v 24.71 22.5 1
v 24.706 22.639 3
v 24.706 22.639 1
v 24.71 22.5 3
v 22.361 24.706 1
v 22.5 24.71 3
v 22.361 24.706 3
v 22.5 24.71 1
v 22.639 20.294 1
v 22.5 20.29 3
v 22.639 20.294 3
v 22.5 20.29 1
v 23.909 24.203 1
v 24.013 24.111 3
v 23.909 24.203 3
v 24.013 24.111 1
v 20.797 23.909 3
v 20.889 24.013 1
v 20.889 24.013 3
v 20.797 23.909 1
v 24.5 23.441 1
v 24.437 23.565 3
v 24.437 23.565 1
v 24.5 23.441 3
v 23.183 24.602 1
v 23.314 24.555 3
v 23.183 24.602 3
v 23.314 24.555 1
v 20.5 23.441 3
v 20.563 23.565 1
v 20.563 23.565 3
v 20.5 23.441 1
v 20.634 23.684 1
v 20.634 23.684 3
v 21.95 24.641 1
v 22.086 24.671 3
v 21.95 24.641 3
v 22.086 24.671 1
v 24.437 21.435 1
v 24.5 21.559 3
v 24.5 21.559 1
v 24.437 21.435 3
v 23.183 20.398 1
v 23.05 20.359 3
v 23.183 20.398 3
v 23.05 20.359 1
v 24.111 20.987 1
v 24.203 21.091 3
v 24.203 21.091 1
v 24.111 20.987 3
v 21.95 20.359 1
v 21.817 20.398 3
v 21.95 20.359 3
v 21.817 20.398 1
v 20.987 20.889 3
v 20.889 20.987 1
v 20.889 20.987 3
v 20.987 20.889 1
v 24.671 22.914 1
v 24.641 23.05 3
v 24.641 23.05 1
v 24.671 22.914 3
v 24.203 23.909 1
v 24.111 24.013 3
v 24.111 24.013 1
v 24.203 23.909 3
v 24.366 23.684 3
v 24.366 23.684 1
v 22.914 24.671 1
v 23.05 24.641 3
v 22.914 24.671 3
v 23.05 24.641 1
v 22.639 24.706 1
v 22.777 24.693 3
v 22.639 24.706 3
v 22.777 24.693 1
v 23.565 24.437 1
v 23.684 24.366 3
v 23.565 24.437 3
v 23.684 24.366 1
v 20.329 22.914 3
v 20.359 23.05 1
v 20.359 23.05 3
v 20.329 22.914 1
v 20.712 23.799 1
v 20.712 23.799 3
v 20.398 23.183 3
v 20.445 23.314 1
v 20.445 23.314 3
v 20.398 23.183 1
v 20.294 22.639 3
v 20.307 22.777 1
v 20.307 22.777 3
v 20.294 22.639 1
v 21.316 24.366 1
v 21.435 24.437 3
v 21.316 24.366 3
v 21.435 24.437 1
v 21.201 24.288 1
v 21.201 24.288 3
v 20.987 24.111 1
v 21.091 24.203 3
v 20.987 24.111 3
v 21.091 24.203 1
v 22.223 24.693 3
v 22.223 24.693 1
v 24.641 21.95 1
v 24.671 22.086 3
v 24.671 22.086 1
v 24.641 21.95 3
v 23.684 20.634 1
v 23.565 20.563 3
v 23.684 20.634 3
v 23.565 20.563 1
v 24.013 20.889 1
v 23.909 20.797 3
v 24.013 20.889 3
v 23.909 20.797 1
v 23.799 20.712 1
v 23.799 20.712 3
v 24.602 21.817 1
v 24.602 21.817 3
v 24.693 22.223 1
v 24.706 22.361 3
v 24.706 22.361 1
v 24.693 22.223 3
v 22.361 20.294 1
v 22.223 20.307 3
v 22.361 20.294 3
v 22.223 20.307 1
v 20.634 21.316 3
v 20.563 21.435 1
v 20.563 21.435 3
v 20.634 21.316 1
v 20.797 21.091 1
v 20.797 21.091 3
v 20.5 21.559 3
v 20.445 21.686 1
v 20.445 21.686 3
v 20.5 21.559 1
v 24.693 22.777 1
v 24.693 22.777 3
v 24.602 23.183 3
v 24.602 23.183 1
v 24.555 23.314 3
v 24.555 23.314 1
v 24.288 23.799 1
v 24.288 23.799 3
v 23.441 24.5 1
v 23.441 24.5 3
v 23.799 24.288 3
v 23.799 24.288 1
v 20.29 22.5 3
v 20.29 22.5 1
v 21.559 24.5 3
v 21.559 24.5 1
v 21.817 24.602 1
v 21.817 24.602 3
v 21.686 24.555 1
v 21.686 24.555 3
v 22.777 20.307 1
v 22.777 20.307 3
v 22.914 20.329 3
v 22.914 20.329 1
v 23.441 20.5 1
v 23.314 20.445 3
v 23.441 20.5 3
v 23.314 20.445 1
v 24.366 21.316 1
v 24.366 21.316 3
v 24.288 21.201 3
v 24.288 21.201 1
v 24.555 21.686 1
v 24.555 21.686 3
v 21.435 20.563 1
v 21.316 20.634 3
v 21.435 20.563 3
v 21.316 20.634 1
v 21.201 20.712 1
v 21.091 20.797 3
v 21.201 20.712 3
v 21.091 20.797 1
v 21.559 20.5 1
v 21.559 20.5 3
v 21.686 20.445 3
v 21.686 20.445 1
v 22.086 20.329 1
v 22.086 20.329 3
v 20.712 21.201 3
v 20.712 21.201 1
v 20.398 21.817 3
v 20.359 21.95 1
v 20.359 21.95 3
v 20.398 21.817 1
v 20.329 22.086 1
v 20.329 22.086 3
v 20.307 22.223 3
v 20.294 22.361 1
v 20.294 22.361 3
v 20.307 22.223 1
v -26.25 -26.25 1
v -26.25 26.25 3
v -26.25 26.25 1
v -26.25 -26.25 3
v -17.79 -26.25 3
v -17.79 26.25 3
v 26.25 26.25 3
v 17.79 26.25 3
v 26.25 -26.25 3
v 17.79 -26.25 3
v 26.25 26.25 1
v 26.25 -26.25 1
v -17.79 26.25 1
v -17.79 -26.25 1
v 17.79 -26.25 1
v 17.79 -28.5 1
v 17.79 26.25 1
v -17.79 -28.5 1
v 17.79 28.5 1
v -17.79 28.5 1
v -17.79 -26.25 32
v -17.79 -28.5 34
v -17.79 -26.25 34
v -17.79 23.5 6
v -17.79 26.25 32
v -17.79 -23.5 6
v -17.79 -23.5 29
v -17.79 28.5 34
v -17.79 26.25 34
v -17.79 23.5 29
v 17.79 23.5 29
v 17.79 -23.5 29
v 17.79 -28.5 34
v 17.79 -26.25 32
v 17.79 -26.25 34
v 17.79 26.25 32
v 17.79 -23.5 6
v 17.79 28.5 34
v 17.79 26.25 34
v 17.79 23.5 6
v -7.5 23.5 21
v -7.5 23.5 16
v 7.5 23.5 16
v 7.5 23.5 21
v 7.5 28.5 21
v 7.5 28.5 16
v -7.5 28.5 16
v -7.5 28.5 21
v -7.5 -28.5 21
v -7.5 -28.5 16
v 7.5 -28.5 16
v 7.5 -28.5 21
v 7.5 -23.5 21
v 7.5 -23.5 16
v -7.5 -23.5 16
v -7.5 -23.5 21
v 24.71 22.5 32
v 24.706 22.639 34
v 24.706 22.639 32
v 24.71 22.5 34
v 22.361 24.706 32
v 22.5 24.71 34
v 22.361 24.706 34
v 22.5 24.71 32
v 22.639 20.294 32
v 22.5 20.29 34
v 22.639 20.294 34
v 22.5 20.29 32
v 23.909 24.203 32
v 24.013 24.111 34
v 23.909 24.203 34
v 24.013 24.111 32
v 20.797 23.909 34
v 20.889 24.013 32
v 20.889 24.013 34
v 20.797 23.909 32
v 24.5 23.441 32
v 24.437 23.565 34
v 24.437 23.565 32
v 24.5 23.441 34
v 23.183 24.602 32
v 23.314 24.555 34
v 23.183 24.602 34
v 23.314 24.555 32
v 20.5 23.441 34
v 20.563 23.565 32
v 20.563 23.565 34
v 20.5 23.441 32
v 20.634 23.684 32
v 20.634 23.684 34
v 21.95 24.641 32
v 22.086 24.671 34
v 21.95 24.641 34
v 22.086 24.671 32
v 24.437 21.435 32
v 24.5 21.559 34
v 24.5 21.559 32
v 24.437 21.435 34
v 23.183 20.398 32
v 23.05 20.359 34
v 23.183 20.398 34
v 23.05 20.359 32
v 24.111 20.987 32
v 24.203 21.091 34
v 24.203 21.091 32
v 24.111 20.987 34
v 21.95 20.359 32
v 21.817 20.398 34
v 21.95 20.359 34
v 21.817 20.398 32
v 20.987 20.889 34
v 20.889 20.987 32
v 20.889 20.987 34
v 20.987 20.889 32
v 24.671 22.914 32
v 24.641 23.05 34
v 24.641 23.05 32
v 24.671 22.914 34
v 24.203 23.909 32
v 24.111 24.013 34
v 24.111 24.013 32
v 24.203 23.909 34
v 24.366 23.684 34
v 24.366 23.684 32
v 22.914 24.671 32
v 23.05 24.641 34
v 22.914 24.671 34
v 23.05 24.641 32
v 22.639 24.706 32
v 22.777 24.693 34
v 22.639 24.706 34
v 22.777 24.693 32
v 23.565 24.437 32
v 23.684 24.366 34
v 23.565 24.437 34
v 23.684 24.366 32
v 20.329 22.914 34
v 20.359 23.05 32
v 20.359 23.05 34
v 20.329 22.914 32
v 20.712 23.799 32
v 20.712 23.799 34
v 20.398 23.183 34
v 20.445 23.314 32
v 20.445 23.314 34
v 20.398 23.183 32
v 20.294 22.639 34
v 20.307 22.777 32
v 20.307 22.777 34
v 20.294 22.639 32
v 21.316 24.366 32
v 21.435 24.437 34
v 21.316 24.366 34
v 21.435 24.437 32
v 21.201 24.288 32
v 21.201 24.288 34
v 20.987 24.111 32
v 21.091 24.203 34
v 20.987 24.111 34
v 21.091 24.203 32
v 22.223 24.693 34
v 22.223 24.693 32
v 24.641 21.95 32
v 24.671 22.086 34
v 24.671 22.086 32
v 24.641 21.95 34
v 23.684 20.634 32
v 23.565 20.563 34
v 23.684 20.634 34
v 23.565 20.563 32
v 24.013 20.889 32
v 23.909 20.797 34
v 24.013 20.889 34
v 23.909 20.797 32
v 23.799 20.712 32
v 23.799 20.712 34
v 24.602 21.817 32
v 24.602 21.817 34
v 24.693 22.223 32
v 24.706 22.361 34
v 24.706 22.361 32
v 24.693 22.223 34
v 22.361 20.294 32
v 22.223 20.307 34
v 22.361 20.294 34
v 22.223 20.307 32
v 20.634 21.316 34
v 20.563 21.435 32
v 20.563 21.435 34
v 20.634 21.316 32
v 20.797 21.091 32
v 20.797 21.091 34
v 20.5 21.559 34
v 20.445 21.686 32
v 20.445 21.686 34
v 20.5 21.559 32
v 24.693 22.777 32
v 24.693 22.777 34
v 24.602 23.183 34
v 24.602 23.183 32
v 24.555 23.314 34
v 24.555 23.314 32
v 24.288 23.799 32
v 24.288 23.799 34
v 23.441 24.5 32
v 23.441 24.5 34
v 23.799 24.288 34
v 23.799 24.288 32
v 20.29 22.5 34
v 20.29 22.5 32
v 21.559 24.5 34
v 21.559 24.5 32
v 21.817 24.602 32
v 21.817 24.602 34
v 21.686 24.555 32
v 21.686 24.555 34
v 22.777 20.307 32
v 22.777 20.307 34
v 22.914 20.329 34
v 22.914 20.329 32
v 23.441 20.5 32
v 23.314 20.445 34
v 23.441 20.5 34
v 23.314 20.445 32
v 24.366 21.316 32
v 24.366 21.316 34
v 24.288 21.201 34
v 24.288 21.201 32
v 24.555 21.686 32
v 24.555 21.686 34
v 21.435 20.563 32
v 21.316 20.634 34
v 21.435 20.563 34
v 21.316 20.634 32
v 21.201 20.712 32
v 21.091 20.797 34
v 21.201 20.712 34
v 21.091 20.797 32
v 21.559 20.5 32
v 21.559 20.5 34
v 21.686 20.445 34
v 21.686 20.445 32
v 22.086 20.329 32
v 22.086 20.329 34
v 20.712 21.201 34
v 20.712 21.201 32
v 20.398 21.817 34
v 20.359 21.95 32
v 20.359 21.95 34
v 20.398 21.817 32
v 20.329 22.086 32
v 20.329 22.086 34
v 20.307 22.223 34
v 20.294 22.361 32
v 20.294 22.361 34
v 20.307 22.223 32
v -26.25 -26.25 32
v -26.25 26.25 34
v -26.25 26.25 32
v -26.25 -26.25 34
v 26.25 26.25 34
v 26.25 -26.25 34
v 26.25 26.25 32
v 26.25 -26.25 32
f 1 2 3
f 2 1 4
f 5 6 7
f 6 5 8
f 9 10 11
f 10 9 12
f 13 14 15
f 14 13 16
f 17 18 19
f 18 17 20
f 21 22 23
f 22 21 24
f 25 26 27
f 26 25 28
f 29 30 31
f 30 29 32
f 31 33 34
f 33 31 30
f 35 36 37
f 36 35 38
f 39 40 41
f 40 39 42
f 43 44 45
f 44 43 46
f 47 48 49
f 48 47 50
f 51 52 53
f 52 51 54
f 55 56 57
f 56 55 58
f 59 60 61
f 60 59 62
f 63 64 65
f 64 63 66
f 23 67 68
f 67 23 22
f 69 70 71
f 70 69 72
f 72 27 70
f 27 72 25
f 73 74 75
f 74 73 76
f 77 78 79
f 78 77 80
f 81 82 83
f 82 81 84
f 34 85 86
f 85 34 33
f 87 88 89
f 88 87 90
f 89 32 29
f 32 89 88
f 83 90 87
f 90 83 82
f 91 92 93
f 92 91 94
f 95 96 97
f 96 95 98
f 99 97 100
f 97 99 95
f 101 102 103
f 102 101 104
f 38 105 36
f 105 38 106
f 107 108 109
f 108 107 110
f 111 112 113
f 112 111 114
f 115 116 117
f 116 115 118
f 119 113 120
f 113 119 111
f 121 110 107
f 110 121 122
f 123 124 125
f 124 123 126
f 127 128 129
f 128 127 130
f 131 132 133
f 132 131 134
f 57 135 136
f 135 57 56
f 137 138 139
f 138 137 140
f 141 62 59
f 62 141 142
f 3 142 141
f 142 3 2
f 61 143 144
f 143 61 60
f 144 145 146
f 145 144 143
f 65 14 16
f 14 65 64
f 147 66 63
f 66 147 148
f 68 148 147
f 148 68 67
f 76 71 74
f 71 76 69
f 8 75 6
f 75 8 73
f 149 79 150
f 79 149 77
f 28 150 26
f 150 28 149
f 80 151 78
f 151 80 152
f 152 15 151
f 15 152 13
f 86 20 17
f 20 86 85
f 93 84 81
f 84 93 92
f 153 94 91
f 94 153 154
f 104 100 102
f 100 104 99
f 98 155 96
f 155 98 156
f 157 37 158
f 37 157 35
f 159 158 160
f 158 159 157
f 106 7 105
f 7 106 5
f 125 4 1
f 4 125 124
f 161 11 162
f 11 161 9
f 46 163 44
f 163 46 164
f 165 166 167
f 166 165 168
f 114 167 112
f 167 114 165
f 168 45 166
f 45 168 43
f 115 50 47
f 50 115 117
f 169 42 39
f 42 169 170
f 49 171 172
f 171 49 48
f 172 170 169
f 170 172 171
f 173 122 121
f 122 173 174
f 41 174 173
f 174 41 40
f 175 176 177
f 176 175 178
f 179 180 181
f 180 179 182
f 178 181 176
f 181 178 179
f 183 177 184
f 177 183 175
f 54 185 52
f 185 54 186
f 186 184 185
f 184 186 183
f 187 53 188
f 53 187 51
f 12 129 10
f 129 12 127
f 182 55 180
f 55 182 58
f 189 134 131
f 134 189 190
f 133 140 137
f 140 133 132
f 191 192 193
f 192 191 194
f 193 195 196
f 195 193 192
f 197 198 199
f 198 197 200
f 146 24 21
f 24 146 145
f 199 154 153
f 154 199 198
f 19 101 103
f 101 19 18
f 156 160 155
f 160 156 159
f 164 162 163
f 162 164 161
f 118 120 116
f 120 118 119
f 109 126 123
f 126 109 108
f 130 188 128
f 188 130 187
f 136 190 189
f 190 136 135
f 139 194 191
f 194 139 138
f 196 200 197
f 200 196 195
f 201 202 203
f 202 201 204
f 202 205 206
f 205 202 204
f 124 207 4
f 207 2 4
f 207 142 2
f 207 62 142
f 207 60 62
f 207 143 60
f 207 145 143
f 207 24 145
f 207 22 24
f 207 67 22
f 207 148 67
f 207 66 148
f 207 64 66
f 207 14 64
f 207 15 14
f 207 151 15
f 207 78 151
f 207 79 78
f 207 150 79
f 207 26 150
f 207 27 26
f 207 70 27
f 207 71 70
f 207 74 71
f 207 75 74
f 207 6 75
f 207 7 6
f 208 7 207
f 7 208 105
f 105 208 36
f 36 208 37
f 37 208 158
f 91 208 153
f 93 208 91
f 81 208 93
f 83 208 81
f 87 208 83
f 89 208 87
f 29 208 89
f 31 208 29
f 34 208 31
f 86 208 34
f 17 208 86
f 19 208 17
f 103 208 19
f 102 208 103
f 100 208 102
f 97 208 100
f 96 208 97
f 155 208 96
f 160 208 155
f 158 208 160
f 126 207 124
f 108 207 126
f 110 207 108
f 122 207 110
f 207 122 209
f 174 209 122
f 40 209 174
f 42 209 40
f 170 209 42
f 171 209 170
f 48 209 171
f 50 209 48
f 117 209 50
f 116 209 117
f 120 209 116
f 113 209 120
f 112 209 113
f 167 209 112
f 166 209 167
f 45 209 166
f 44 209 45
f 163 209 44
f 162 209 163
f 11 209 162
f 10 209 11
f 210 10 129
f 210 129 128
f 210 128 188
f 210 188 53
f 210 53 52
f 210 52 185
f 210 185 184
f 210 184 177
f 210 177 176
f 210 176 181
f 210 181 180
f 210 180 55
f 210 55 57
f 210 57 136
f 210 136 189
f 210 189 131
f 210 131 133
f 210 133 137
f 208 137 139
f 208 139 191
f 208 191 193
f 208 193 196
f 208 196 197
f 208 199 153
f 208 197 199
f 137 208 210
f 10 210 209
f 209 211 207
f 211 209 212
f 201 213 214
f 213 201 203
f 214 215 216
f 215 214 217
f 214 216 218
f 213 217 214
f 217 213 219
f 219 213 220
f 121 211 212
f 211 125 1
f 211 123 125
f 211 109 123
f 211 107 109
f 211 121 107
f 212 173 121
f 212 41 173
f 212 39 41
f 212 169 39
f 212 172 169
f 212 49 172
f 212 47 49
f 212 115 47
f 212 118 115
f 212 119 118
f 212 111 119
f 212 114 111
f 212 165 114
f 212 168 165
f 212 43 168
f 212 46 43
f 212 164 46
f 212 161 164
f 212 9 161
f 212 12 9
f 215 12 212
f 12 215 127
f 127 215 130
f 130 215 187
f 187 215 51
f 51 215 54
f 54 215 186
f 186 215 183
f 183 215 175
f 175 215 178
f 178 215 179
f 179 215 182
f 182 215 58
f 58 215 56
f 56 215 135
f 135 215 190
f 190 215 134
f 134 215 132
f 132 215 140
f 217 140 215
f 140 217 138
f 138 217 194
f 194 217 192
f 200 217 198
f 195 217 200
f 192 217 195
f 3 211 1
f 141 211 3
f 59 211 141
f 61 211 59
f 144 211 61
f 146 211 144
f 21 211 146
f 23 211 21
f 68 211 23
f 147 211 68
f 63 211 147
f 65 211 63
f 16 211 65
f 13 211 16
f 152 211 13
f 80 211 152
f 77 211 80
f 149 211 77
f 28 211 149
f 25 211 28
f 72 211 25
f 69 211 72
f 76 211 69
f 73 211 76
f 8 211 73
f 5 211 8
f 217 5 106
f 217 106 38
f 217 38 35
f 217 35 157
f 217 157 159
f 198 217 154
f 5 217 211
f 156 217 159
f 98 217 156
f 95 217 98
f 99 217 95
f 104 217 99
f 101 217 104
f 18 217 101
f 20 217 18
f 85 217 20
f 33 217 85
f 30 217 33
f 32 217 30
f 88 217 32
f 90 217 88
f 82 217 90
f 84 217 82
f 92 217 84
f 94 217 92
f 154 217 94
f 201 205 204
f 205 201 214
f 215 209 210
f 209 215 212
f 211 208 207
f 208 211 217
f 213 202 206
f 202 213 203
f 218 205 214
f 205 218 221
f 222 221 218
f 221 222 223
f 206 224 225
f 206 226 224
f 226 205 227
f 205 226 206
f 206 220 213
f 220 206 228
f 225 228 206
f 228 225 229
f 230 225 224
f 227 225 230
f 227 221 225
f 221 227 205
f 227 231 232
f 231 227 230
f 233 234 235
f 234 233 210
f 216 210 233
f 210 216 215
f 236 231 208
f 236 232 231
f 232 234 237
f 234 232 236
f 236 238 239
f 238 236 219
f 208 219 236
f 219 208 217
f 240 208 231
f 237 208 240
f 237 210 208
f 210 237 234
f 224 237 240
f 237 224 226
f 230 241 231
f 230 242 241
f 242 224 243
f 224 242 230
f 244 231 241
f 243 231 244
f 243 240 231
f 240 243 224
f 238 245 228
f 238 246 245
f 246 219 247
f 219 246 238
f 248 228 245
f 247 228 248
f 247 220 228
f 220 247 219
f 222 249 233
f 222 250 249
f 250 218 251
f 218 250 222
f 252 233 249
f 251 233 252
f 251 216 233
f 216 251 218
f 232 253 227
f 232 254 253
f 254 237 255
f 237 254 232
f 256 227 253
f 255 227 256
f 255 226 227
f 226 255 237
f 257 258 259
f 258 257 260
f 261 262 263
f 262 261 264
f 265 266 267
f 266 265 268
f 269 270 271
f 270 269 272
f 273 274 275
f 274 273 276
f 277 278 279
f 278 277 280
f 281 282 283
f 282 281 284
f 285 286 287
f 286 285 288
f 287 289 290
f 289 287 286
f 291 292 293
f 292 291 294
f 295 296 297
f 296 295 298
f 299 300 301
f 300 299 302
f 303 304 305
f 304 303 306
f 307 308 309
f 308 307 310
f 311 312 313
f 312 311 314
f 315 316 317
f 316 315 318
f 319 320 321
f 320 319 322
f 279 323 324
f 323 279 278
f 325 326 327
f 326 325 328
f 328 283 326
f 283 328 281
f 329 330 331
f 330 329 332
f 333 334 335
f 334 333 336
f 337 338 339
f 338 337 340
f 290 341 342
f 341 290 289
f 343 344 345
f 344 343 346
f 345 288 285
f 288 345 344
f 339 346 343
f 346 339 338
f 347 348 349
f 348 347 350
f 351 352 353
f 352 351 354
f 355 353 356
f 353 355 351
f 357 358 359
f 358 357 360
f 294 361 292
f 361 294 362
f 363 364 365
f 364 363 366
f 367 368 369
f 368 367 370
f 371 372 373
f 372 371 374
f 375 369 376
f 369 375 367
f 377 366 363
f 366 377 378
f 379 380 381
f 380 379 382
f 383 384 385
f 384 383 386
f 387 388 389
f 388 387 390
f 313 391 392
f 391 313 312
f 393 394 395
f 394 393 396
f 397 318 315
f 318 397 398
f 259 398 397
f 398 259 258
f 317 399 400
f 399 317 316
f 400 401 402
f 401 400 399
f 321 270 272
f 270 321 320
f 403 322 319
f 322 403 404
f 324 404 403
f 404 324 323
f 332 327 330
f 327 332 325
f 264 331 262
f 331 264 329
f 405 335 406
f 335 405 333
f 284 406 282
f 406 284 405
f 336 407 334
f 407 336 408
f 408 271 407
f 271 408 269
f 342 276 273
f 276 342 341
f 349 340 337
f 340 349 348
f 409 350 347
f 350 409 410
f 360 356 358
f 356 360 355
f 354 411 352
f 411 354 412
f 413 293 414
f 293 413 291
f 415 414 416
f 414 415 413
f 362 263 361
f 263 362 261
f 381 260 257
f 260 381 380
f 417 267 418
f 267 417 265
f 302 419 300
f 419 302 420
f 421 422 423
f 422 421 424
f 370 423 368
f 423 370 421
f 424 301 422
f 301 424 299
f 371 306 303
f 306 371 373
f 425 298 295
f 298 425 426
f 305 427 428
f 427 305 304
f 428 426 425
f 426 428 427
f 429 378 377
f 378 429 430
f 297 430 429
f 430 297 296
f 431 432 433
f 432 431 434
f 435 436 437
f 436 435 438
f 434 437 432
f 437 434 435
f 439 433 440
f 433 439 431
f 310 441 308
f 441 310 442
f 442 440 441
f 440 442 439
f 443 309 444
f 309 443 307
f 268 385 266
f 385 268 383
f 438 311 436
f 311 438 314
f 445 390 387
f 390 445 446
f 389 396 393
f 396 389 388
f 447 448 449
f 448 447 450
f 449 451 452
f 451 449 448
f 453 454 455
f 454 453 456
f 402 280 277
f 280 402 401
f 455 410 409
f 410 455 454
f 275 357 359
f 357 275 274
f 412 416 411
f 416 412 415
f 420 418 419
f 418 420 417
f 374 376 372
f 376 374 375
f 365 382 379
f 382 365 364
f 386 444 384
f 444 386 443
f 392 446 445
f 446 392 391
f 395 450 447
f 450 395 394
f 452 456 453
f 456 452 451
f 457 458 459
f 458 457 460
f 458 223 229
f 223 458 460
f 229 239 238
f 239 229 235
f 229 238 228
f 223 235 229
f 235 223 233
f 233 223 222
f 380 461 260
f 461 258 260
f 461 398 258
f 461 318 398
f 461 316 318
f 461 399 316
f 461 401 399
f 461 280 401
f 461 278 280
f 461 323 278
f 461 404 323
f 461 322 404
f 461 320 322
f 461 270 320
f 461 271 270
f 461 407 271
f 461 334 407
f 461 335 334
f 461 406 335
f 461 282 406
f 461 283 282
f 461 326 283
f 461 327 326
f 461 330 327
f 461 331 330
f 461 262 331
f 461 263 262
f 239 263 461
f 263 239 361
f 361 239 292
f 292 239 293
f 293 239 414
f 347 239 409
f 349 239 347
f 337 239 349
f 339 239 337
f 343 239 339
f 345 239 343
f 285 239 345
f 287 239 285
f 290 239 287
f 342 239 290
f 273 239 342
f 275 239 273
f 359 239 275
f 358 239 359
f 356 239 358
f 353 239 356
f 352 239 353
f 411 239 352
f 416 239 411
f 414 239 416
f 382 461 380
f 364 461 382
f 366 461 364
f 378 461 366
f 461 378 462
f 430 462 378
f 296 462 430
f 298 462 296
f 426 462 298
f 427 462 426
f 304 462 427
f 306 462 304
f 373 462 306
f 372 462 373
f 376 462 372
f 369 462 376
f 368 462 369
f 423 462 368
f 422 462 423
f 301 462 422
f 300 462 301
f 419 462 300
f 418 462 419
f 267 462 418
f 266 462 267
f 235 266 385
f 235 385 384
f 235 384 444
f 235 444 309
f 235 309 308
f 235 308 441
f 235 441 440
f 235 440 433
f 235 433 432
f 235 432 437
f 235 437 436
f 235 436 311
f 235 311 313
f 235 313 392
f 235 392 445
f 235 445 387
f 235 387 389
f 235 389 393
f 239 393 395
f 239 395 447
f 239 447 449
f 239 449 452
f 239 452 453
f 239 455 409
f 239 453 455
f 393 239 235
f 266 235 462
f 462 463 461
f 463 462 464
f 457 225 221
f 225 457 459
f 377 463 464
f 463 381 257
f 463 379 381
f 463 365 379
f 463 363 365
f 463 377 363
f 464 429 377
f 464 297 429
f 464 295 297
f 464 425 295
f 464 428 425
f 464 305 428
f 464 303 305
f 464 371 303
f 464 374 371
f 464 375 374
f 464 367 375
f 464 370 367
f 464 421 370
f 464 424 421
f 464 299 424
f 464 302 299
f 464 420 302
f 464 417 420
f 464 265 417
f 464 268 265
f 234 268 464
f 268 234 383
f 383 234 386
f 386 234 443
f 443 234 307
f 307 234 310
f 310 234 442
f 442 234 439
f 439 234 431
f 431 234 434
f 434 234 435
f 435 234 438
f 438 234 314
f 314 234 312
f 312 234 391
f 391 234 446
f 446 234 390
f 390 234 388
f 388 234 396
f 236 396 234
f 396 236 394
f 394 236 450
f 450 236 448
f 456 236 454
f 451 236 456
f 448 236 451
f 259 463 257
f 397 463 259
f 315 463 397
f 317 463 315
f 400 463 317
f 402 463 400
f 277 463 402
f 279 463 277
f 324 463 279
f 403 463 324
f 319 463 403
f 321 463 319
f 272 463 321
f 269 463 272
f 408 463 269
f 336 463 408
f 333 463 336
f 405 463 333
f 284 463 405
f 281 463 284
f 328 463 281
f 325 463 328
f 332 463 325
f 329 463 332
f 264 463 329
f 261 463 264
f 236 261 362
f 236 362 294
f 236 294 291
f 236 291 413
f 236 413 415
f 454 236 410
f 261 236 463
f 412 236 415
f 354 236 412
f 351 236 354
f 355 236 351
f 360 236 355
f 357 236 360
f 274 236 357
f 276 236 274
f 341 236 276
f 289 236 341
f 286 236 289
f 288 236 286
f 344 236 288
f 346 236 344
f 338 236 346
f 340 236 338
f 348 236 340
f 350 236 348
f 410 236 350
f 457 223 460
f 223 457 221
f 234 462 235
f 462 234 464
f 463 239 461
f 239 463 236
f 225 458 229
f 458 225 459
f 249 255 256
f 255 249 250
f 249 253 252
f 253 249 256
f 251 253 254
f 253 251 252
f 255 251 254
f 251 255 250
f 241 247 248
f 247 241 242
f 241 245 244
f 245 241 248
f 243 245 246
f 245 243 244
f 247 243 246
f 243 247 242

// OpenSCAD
//By Lucas Gelfond. Licensed officially under GPL V3, but I'm not quite sure if that works. Have fun!

//Width of used battery.
batteryWidth = 42;

//Height of used battery.
batteryHeight = 20.5;

holeSize = 4.42;
//Size of mounting plate holes.

//The mounting hole pattern. For instance, 45x45.
mountingPattern = 45;

//The size of the mounting plate.
plateSize = 52.5;

//Thickness of the mounting plate.
plateThick = 2;

//Thickness of walls for the battery carriage.;
carriageThick = 5;

//Distance from the mounting holes to the start of the carriage walls.
holeToCarriage = 2.5;

//Extra height for the battery wall to fit the battery more comfortably.
extraBatteryWall = 2.5;

//Extra width for battery.
extraBatteryWidth = 5;

//The height of the battery strap slit.
batteryStrapHeight = 5;

//The width of the battery strap slit.
batteryStrapWidth = 15;

//The height off of the carriage that the slit is.
batteryStrapLift = 10;

//Lift the mounting plate into the main carriage? 0 = no, 1 = yes
liftMount = 1;


$fn = 100;


module mountingHole() {
    cylinder(r=holeSize/2, h=plateThick*2, center=true);
}
module mountingPlate() {
    difference() {
        cube([plateSize, plateSize, plateThick], center=true);
        for(i = [1, -1], n = [1, -1]) translate([mountingPattern/2, mountingPattern/2,0])mountingHole();
        }
}



module batteryCarriageSides() {
    for(i = [1, -1]) translate([0,(batteryWidth+extraBatteryWidth+carriageThick)/2*i,(batteryHeight+plateThick+extraBatteryWall+carriageThick*2)/2]) cube([mountingPattern-holeSize-holeToCarriage*2, carriageThick, batteryHeight+extraBatteryWall], center=true);
}
module batteryCarriage() {
    translate([0,0,plateThick*liftMount]) {
        mountingPlate();
    }
    batteryCarriageSides();
     translate([0,0,(plateThick+carriageThick)/2]) {
        cube([mountingPattern-holeSize-holeToCarriage*2,batteryWidth+extraBatteryWidth+carriageThick*2,carriageThick], center=true);
    }
    translate([0,0,plateThick/2+batteryHeight+extraBatteryWall+carriageThick*1.5]) {
        cube([mountingPattern-holeSize-holeToCarriage*2,batteryWidth+extraBatteryWidth+carriageThick*2,carriageThick], center=true);
    }
    translate([0,0,batteryHeight+extraBatteryWall+carriageThick*2+plateThick-plateThick*liftMount]) {
        mountingPlate();
    }
}
module carriageWithBatteryStrap() {
    difference() {
        batteryCarriage();
        translate([0,(batteryWidth+extraBatteryWidth+carriageThick)/-2,(plateThick+batteryStrapHeight)/2+carriageThick+batteryStrapLift]) {
            cube([batteryStrapWidth, carriageThick*5, batteryStrapHeight], center=true);
        }
        translate([0,(batteryWidth+extraBatteryWidth+carriageThick)/2,(plateThick+batteryStrapHeight)/2+carriageThick+batteryStrapLift]) {
            cube([batteryStrapWidth, carriageThick*5, batteryStrapHeight], center=true);
        }            
    }
}

carriageWithBatteryStrap();
